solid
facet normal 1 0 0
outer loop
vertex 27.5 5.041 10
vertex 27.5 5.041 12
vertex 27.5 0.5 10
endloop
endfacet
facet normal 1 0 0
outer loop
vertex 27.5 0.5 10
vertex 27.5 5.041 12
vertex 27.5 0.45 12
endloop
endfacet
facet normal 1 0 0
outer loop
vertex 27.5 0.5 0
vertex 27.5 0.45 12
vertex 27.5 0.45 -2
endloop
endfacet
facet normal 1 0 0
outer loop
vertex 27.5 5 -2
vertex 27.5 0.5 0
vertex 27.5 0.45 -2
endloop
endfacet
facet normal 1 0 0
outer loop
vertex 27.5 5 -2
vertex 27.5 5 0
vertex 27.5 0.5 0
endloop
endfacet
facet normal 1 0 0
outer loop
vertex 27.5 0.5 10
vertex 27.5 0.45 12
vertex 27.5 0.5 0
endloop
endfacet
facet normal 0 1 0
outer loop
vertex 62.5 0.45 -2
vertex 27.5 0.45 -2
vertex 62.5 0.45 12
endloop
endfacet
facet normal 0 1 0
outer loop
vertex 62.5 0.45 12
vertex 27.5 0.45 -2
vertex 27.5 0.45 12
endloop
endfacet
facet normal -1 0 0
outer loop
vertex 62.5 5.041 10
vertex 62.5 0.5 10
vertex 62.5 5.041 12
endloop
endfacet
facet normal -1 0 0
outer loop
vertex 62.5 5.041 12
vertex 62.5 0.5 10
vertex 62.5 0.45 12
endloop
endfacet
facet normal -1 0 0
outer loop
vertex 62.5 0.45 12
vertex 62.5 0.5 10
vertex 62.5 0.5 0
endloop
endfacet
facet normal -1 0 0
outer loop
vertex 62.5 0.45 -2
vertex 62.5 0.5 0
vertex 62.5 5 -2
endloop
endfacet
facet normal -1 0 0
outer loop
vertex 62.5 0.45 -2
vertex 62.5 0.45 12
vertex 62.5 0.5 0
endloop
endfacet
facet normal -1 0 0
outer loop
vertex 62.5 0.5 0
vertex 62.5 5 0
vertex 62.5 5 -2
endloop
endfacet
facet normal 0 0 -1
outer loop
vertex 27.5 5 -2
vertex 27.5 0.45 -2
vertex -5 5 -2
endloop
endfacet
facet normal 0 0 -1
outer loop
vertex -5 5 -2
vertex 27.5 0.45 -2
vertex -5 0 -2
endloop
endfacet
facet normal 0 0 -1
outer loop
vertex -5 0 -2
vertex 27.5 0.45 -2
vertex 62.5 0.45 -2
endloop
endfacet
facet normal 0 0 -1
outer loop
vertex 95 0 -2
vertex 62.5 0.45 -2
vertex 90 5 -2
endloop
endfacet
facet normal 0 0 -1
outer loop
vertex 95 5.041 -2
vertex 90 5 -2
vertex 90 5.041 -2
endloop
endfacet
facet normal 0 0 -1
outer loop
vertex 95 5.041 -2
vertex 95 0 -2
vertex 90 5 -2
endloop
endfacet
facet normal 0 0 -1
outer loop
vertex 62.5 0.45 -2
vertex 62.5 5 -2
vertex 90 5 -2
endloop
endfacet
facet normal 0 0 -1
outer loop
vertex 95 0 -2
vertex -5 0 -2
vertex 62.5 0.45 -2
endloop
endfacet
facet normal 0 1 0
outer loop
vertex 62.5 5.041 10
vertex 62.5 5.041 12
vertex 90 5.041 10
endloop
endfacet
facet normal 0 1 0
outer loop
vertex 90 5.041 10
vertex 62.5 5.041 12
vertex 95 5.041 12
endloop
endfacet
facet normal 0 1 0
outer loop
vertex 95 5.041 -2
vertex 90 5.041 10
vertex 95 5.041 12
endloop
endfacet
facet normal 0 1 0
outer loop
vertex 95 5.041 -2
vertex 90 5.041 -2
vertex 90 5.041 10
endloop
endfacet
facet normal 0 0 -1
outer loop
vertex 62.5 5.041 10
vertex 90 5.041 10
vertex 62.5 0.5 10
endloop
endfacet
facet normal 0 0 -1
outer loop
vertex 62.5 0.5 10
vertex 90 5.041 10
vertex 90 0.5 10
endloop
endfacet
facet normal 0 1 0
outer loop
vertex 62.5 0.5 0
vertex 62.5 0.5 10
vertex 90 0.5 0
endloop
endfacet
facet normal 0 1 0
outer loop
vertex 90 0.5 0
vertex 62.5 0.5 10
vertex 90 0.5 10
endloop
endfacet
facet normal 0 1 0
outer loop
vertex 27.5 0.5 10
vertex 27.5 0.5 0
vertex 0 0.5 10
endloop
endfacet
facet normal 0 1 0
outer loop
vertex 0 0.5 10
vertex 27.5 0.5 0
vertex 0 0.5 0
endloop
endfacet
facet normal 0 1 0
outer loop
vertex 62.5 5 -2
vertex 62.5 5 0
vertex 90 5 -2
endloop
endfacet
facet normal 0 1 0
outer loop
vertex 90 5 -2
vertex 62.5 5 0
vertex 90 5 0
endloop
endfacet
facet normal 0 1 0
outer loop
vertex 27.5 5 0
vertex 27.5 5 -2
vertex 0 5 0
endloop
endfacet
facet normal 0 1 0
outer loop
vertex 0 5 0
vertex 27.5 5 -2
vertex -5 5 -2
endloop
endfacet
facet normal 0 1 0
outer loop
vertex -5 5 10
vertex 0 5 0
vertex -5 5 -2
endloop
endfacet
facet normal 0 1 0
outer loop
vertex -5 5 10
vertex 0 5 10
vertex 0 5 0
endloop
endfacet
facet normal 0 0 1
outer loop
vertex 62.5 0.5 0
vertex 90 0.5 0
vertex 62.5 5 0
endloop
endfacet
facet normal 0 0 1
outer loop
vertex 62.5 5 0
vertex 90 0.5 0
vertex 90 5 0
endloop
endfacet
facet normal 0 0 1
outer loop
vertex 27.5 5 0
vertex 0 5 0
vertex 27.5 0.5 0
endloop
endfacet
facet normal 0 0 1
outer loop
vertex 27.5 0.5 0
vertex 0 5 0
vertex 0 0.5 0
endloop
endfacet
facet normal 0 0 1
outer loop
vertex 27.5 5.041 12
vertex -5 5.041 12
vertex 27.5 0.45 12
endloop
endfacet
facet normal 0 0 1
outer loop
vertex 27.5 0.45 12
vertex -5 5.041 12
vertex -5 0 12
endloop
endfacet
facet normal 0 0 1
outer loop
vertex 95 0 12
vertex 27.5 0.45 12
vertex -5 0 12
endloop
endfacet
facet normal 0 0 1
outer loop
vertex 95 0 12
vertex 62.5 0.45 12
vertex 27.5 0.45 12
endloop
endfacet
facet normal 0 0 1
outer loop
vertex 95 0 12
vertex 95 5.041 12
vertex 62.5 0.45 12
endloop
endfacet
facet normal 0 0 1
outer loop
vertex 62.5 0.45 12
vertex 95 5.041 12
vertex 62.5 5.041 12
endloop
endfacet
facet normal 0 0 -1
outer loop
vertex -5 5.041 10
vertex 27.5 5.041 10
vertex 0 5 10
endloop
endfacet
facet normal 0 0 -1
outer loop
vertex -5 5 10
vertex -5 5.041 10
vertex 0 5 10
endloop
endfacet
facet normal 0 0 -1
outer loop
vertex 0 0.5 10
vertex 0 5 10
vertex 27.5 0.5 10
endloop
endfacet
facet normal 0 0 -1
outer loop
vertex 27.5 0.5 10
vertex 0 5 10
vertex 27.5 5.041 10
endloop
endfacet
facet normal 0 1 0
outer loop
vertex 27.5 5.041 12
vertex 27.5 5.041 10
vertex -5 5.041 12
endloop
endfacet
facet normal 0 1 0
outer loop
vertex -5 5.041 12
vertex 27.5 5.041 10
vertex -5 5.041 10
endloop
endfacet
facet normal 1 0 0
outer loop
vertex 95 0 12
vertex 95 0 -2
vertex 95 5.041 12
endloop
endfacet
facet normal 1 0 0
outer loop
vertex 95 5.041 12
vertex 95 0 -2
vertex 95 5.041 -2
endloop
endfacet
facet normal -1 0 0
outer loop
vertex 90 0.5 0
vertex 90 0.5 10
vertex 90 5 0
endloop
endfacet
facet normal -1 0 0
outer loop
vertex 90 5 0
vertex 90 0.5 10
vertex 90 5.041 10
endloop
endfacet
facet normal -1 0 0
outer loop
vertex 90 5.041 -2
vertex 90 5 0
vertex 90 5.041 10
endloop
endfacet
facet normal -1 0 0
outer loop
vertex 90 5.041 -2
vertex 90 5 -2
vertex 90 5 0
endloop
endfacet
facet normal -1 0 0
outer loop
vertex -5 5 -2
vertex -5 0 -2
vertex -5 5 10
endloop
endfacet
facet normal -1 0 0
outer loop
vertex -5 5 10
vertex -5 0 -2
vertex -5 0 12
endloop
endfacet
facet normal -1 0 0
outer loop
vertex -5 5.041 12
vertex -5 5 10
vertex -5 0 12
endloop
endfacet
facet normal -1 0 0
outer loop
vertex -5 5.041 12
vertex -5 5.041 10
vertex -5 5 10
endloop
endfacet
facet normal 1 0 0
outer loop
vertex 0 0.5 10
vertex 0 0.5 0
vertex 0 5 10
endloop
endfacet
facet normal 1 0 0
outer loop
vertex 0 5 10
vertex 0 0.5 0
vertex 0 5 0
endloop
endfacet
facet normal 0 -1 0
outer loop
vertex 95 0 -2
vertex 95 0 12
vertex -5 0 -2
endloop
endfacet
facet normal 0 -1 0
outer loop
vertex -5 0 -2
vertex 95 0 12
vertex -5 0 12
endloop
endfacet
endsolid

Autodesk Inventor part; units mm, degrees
ref_plane "YZ Plane" through (0, 0, 0) normal (1, 0, 0) x (0, 1, 0)
ref_plane "XZ Plane" through (0, 0, 0) normal (0, 1, 0) x (-1, 0, 0)
ref_plane "XY Plane" through (0, 0, 0) normal (0, 0, 1) x (1, 0, 0)
sketch "スケッチ1" plane through (0, 0, 0) normal (0, 1, 0) x (-1, 0, 0)
  line L0 (0, 0) -> (-90, 0)
  line L1 (-90, 0) -> (-90, 10)
  line L2 (-90, 10) -> (0, 10)
  line L3 (0, 10) -> (0, 0)
  dimension "d0" = 90
  dimension "d1" = 10
extrude "押し出し1" add sketch "スケッチ1" along normal blind 0.5
sketch "スケッチ2" plane through (0, 0, 0) normal (-1, 0, 0) x (0, 0, 1)
  line L0 (10, 0) -> (0, 0) projected
  line L1 (10, 0) -> (10, 0.5) projected
  line L2 (0, 0.5) -> (10, 0.5) projected
  line L3 (0, 0) -> (0, 0.5) projected
  line L4 (0, 0) -> (10, 0)
  line L5 (10, 0) -> (10, 5)
  line L6 (10, 5) -> (0, 5)
  line L7 (0, 5) -> (0, 0)
  dimension "d4" = 5
extrude "押し出し2" add sketch "スケッチ2" along normal blind 5 contours L2 L7 L6 L5
sketch "スケッチ3" plane through (0, 0, 0) normal (-1, 0, 0) x (0, 0, 1)
  line L0 (10, 0) -> (0, 0) projected
  line L1 (10, 0) -> (10, 0.5) projected
  line L2 (0, 0.5) -> (10, 0.5) projected
  line L3 (0, 0) -> (0, 0.5) projected
extrude "押し出し3" add sketch "スケッチ3" along normal blind 5
sketch "スケッチ4" plane through (90, 0, 10) normal (1, 0, 0) x (0, 0, -1)
  line L0 (0, 0) -> (10, 0)
  line L1 (10, 0) -> (10, 5.0408)
  line L2 (10, 5.0408) -> (0, 5.0408)
  line L3 (0, 5.0408) -> (0, 0)
extrude "押し出し4" add sketch "スケッチ4" along normal blind 5
sketch "スケッチ5" plane through (0, 0.5, 0) normal (0, 0, -1) x (-1, 0, 0)
  line L0 (5, -0.5) -> (-95, -0.5) projected
  line L1 (5, 4.5) -> (5, -0.5) projected
  line L2 (0, 4.5) -> (5, 4.5) projected
  line L3 (0, 4.5) -> (0, 0) projected
  line L4 (-90, 0) -> (0, 0) projected
  line L5 (-90, 0) -> (-90, 4.5408) projected
  line L6 (-90, 4.5408) -> (-95, 4.5408) projected
  line L7 (-95, -0.5) -> (-95, 4.5408) projected
  line L8 (-95, -0.5) -> (5, -0.5)
  line L9 (5, -0.5) -> (5, 4.5)
  line L10 (5, 4.5) -> (-95, 4.5)
  line L11 (-95, 4.5) -> (-95, -0.5)
  point P0 (0, -0.5)
extrude "押し出し5" add sketch "スケッチ5" along normal blind 2
sketch "スケッチ6" plane through (0, 0.5, 10) normal (0, 0, 1) x (1, 0, 0)
  line L0 (95, -0.5) -> (-5, -0.5) projected
  line L1 (95, 4.5408) -> (95, -0.5) projected
  line L2 (-5, -0.5) -> (95, -0.5)
  line L3 (95, -0.5) -> (95, 4.5408)
  line L4 (95, 4.5408) -> (-5, 4.5408)
  line L5 (-5, 4.5408) -> (-5, -0.5)
  point P0 (0, -0.5)
extrude "押し出し6" add sketch "スケッチ6" along normal blind 2
sketch "スケッチ7" plane through (90, 5.0408, -2) normal (0, 1, 0) x (1, 0, 0)
  line L0 (0, -12) -> (0, 0) projected
  line L1 (0, -12) -> (-95, -12) projected
  line L2 (-95, -12) -> (-95, -14) projected
  line L3 (5, -14) -> (-95, -14) projected
  line L4 (5, -14) -> (5, 0) projected
  line L5 (0, 0) -> (5, 0) projected
  point P0 (-90, -2)
sketch "スケッチ8" plane through (0, 0.5, 12) normal (0, 0, 1) x (1, 0, 0)
  line L0 (95, 4.5408) -> (-5, 4.5408) projected
  line L1 (27.5, 9.1315) -> (62.5, 9.1315)
  line L2 (62.5, 9.1315) -> (62.5, -0.0498)
  line L3 (62.5, -0.0498) -> (27.5, -0.0498)
  line L4 (27.5, -0.0498) -> (27.5, 9.1315)
  line L5 (27.5, 9.1315) -> (62.5, -0.0498) construction
  line L6 (62.5, 9.1315) -> (27.5, -0.0498) construction
  point P0 (0, -0.5)
  point P1 (45, 4.5408)
  dimension "d15" = 35
extrude "押し出し7" cut sketch "スケッチ8" against normal blind 20
properties part number "知能ロボコン砲台スペーサ高さ"
